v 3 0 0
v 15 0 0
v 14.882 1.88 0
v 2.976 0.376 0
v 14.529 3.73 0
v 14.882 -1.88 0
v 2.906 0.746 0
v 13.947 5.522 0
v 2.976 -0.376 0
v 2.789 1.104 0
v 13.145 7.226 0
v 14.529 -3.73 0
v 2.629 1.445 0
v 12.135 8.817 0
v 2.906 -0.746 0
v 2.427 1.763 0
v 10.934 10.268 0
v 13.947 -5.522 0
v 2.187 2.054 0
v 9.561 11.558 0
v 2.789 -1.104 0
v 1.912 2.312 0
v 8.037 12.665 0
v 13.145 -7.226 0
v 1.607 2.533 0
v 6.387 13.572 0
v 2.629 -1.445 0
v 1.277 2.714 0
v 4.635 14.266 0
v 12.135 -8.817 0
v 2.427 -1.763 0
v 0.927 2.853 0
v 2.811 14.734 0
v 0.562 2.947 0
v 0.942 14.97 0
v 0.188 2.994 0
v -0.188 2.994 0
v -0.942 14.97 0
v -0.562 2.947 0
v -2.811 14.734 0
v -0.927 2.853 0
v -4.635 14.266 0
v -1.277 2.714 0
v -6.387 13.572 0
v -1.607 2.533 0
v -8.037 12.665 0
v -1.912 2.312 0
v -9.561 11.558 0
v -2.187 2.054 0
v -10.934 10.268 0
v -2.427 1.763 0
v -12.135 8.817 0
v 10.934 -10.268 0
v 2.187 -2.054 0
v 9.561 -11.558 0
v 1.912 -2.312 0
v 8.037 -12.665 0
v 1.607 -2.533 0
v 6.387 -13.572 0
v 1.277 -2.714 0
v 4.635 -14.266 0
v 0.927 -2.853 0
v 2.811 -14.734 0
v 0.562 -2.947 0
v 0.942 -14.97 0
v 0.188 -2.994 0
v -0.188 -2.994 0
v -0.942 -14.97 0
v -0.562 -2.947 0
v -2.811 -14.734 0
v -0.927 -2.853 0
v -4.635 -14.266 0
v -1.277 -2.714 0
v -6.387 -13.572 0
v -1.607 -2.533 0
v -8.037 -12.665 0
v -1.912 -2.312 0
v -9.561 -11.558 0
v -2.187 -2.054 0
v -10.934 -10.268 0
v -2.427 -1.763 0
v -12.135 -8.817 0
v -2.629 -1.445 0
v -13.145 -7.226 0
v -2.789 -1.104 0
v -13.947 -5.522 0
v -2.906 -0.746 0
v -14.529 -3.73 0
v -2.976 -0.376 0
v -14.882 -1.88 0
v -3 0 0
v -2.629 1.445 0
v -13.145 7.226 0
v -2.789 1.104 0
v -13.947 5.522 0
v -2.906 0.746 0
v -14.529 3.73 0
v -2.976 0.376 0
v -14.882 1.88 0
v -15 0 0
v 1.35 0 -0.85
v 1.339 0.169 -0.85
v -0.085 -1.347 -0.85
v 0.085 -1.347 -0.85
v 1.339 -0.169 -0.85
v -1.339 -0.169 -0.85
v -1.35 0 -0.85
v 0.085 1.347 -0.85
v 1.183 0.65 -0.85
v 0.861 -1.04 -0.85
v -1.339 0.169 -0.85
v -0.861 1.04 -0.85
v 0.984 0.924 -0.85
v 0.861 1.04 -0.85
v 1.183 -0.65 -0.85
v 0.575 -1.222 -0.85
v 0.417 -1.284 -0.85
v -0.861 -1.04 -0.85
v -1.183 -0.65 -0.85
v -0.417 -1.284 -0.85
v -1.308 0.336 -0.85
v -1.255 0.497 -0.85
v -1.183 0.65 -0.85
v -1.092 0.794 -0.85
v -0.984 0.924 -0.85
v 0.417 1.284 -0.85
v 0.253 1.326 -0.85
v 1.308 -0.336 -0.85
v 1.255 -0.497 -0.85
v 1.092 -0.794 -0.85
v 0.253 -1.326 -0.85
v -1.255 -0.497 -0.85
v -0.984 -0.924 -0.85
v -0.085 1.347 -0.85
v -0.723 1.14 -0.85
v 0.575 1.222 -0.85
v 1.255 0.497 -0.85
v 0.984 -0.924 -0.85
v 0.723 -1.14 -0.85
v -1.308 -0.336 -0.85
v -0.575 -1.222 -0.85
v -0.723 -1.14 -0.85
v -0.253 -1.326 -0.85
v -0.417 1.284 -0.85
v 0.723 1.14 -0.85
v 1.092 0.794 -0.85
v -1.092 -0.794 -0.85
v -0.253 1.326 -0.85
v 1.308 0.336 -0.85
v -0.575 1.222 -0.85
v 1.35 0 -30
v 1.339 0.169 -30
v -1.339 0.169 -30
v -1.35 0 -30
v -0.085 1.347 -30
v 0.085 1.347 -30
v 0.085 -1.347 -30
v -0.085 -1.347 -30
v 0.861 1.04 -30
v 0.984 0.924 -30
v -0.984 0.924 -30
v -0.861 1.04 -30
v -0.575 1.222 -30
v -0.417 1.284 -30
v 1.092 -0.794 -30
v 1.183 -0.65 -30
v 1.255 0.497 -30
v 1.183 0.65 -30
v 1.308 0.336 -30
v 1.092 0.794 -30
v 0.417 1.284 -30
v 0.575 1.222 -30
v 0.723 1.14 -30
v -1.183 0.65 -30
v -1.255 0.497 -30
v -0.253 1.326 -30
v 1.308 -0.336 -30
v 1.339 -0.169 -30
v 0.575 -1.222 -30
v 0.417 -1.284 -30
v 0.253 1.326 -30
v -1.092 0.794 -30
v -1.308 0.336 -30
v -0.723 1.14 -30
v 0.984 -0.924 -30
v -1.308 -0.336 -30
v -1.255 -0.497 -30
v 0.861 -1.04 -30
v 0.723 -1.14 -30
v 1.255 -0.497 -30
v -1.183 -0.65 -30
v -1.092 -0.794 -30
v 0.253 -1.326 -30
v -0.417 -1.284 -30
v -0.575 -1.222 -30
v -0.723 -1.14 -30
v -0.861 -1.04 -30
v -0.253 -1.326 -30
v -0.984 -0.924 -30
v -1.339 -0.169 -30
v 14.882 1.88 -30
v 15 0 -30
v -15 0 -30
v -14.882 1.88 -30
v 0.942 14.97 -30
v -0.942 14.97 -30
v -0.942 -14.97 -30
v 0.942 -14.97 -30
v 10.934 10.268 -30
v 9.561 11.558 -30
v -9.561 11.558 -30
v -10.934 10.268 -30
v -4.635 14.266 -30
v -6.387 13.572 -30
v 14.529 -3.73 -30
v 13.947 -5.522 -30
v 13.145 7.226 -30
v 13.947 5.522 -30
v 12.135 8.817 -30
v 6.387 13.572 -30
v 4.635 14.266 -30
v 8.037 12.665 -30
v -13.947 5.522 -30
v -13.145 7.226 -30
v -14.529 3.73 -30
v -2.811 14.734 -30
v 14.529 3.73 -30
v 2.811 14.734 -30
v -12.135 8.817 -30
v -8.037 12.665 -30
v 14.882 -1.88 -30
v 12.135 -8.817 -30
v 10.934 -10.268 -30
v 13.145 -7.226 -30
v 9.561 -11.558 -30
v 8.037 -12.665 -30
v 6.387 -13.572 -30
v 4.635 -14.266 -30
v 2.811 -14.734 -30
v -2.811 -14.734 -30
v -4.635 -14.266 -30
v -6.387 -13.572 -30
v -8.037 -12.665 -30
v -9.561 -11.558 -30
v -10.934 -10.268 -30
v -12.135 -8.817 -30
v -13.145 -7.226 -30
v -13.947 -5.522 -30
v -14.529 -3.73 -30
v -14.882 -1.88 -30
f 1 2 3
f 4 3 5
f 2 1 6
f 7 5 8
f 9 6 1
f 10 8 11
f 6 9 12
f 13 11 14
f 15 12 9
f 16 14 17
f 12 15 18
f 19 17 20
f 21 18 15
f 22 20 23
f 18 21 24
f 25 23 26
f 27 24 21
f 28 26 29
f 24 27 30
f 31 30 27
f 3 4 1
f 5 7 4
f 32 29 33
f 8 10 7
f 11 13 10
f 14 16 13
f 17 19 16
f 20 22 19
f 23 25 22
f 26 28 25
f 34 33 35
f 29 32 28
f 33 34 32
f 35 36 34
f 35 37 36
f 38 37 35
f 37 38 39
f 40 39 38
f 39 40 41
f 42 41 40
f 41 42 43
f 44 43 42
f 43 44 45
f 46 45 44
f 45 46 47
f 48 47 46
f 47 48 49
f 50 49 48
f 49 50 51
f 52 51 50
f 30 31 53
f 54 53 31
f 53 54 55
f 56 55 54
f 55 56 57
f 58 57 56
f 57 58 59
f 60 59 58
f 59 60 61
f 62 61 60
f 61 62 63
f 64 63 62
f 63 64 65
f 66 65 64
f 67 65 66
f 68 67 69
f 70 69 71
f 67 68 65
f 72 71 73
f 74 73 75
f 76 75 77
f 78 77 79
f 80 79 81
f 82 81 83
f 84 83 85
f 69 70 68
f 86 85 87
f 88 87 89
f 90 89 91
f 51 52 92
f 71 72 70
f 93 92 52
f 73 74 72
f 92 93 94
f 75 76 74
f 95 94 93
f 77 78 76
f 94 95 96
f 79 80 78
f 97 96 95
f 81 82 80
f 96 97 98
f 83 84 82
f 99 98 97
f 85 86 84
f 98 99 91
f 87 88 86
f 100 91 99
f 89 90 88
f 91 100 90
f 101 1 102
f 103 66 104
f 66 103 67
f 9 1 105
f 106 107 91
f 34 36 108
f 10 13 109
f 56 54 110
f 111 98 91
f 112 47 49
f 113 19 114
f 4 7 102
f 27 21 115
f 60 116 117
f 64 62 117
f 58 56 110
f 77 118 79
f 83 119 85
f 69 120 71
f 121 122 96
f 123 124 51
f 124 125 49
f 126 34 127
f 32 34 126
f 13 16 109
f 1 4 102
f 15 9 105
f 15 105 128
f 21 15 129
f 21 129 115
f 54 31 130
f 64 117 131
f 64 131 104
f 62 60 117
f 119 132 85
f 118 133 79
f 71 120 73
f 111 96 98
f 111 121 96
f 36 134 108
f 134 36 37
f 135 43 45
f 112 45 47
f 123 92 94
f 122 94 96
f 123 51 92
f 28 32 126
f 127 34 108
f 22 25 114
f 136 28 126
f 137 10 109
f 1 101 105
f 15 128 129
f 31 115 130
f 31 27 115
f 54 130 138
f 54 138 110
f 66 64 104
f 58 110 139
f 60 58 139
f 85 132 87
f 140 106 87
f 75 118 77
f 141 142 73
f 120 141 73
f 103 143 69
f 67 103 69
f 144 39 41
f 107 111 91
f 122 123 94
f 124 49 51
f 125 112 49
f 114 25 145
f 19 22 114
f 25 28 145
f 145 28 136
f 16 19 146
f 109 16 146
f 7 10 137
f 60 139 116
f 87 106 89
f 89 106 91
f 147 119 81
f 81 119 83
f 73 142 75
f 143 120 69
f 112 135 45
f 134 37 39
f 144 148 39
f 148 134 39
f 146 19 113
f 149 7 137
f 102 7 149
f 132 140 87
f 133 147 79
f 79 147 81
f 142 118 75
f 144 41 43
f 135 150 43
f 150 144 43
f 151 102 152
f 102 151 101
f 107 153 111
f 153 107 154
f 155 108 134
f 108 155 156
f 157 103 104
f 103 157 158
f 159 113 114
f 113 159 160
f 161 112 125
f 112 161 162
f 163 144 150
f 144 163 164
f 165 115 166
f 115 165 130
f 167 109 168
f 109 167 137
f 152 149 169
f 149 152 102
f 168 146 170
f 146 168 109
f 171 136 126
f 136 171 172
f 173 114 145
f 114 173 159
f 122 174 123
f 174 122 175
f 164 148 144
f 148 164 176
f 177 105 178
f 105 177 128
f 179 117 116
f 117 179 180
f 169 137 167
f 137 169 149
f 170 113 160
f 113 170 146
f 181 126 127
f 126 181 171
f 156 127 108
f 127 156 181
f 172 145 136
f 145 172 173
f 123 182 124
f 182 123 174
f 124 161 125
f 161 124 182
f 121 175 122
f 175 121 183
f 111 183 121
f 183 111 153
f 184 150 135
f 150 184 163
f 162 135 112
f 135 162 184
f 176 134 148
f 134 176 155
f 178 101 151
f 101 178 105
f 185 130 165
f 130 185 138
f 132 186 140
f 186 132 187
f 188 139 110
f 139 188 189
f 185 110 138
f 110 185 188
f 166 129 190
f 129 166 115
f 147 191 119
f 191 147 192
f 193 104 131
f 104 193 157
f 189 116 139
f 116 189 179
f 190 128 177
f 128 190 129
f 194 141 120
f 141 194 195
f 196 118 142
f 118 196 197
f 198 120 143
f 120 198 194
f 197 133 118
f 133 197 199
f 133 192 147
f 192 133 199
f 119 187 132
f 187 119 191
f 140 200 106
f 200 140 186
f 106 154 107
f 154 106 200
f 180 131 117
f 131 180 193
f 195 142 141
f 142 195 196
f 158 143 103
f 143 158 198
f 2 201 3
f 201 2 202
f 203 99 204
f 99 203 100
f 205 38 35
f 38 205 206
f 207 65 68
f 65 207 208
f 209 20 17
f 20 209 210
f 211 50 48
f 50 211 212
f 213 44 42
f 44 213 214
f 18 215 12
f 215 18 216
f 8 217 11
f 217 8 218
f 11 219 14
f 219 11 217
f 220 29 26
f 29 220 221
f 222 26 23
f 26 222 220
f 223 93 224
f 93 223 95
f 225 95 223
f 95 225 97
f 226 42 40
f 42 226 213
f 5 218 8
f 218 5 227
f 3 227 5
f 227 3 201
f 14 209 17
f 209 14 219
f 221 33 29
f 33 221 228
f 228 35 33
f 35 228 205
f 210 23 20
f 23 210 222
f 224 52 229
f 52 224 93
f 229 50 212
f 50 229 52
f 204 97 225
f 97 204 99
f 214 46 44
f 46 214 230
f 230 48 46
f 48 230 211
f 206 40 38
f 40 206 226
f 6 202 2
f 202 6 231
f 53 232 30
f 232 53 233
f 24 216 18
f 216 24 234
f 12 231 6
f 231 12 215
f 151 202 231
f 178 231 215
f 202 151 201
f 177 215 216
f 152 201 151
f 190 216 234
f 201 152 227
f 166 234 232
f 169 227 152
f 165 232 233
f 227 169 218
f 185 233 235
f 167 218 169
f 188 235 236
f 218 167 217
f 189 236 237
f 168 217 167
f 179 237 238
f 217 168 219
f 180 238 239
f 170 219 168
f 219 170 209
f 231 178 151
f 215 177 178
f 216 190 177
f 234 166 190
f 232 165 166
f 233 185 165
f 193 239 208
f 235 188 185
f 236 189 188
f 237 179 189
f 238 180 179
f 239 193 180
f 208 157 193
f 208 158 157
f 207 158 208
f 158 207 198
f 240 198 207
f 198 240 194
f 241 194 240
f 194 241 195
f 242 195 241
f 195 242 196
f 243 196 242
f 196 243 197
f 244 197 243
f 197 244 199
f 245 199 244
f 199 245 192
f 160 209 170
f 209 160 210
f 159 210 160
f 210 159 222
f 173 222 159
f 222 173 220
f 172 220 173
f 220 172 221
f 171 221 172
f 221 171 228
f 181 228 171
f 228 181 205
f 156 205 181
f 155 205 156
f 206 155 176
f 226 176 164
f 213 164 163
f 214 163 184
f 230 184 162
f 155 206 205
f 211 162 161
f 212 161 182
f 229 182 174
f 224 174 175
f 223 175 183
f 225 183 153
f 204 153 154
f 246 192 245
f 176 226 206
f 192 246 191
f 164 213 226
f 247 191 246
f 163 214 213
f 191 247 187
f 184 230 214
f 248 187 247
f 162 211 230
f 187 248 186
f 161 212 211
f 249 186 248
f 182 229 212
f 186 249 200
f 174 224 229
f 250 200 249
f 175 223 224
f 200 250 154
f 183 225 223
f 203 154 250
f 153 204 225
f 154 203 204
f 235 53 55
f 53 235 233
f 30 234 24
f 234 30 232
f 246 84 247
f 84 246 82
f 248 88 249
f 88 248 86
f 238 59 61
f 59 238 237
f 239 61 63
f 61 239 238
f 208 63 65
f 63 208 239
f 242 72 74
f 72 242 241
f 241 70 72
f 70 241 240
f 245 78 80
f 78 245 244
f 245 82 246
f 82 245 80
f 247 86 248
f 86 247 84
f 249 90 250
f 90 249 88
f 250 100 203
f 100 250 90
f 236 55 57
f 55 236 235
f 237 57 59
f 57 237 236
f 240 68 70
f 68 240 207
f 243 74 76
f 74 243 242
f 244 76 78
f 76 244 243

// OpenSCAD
$fn = 50;


difference() {
	union() {
		translate(v = [0, 0, -30.0000000000]) {
			cylinder(h = 30, r = 15.0000000000);
		}
	}
	union() {
		translate(v = [0, 0, 0]) {
			rotate(a = [0, 0, 0]) {
				difference() {
					union() {
						translate(v = [0, 0, -33.0000000000]) {
							cylinder(h = 33, r = 1.0000000000);
						}
						translate(v = [0, 0, -0.8500000000]) {
							cylinder(h = 0.8500000000, r1 = 1.3500000000, r2 = 3.0000000000);
						}
						translate(v = [0, 0, -33.0000000000]) {
							cylinder(h = 33, r = 1.3500000000);
						}
						translate(v = [0, 0, -33.0000000000]) {
							cylinder(h = 33, r = 1.0000000000);
						}
					}
					union();
				}
			}
		}
	}
}
